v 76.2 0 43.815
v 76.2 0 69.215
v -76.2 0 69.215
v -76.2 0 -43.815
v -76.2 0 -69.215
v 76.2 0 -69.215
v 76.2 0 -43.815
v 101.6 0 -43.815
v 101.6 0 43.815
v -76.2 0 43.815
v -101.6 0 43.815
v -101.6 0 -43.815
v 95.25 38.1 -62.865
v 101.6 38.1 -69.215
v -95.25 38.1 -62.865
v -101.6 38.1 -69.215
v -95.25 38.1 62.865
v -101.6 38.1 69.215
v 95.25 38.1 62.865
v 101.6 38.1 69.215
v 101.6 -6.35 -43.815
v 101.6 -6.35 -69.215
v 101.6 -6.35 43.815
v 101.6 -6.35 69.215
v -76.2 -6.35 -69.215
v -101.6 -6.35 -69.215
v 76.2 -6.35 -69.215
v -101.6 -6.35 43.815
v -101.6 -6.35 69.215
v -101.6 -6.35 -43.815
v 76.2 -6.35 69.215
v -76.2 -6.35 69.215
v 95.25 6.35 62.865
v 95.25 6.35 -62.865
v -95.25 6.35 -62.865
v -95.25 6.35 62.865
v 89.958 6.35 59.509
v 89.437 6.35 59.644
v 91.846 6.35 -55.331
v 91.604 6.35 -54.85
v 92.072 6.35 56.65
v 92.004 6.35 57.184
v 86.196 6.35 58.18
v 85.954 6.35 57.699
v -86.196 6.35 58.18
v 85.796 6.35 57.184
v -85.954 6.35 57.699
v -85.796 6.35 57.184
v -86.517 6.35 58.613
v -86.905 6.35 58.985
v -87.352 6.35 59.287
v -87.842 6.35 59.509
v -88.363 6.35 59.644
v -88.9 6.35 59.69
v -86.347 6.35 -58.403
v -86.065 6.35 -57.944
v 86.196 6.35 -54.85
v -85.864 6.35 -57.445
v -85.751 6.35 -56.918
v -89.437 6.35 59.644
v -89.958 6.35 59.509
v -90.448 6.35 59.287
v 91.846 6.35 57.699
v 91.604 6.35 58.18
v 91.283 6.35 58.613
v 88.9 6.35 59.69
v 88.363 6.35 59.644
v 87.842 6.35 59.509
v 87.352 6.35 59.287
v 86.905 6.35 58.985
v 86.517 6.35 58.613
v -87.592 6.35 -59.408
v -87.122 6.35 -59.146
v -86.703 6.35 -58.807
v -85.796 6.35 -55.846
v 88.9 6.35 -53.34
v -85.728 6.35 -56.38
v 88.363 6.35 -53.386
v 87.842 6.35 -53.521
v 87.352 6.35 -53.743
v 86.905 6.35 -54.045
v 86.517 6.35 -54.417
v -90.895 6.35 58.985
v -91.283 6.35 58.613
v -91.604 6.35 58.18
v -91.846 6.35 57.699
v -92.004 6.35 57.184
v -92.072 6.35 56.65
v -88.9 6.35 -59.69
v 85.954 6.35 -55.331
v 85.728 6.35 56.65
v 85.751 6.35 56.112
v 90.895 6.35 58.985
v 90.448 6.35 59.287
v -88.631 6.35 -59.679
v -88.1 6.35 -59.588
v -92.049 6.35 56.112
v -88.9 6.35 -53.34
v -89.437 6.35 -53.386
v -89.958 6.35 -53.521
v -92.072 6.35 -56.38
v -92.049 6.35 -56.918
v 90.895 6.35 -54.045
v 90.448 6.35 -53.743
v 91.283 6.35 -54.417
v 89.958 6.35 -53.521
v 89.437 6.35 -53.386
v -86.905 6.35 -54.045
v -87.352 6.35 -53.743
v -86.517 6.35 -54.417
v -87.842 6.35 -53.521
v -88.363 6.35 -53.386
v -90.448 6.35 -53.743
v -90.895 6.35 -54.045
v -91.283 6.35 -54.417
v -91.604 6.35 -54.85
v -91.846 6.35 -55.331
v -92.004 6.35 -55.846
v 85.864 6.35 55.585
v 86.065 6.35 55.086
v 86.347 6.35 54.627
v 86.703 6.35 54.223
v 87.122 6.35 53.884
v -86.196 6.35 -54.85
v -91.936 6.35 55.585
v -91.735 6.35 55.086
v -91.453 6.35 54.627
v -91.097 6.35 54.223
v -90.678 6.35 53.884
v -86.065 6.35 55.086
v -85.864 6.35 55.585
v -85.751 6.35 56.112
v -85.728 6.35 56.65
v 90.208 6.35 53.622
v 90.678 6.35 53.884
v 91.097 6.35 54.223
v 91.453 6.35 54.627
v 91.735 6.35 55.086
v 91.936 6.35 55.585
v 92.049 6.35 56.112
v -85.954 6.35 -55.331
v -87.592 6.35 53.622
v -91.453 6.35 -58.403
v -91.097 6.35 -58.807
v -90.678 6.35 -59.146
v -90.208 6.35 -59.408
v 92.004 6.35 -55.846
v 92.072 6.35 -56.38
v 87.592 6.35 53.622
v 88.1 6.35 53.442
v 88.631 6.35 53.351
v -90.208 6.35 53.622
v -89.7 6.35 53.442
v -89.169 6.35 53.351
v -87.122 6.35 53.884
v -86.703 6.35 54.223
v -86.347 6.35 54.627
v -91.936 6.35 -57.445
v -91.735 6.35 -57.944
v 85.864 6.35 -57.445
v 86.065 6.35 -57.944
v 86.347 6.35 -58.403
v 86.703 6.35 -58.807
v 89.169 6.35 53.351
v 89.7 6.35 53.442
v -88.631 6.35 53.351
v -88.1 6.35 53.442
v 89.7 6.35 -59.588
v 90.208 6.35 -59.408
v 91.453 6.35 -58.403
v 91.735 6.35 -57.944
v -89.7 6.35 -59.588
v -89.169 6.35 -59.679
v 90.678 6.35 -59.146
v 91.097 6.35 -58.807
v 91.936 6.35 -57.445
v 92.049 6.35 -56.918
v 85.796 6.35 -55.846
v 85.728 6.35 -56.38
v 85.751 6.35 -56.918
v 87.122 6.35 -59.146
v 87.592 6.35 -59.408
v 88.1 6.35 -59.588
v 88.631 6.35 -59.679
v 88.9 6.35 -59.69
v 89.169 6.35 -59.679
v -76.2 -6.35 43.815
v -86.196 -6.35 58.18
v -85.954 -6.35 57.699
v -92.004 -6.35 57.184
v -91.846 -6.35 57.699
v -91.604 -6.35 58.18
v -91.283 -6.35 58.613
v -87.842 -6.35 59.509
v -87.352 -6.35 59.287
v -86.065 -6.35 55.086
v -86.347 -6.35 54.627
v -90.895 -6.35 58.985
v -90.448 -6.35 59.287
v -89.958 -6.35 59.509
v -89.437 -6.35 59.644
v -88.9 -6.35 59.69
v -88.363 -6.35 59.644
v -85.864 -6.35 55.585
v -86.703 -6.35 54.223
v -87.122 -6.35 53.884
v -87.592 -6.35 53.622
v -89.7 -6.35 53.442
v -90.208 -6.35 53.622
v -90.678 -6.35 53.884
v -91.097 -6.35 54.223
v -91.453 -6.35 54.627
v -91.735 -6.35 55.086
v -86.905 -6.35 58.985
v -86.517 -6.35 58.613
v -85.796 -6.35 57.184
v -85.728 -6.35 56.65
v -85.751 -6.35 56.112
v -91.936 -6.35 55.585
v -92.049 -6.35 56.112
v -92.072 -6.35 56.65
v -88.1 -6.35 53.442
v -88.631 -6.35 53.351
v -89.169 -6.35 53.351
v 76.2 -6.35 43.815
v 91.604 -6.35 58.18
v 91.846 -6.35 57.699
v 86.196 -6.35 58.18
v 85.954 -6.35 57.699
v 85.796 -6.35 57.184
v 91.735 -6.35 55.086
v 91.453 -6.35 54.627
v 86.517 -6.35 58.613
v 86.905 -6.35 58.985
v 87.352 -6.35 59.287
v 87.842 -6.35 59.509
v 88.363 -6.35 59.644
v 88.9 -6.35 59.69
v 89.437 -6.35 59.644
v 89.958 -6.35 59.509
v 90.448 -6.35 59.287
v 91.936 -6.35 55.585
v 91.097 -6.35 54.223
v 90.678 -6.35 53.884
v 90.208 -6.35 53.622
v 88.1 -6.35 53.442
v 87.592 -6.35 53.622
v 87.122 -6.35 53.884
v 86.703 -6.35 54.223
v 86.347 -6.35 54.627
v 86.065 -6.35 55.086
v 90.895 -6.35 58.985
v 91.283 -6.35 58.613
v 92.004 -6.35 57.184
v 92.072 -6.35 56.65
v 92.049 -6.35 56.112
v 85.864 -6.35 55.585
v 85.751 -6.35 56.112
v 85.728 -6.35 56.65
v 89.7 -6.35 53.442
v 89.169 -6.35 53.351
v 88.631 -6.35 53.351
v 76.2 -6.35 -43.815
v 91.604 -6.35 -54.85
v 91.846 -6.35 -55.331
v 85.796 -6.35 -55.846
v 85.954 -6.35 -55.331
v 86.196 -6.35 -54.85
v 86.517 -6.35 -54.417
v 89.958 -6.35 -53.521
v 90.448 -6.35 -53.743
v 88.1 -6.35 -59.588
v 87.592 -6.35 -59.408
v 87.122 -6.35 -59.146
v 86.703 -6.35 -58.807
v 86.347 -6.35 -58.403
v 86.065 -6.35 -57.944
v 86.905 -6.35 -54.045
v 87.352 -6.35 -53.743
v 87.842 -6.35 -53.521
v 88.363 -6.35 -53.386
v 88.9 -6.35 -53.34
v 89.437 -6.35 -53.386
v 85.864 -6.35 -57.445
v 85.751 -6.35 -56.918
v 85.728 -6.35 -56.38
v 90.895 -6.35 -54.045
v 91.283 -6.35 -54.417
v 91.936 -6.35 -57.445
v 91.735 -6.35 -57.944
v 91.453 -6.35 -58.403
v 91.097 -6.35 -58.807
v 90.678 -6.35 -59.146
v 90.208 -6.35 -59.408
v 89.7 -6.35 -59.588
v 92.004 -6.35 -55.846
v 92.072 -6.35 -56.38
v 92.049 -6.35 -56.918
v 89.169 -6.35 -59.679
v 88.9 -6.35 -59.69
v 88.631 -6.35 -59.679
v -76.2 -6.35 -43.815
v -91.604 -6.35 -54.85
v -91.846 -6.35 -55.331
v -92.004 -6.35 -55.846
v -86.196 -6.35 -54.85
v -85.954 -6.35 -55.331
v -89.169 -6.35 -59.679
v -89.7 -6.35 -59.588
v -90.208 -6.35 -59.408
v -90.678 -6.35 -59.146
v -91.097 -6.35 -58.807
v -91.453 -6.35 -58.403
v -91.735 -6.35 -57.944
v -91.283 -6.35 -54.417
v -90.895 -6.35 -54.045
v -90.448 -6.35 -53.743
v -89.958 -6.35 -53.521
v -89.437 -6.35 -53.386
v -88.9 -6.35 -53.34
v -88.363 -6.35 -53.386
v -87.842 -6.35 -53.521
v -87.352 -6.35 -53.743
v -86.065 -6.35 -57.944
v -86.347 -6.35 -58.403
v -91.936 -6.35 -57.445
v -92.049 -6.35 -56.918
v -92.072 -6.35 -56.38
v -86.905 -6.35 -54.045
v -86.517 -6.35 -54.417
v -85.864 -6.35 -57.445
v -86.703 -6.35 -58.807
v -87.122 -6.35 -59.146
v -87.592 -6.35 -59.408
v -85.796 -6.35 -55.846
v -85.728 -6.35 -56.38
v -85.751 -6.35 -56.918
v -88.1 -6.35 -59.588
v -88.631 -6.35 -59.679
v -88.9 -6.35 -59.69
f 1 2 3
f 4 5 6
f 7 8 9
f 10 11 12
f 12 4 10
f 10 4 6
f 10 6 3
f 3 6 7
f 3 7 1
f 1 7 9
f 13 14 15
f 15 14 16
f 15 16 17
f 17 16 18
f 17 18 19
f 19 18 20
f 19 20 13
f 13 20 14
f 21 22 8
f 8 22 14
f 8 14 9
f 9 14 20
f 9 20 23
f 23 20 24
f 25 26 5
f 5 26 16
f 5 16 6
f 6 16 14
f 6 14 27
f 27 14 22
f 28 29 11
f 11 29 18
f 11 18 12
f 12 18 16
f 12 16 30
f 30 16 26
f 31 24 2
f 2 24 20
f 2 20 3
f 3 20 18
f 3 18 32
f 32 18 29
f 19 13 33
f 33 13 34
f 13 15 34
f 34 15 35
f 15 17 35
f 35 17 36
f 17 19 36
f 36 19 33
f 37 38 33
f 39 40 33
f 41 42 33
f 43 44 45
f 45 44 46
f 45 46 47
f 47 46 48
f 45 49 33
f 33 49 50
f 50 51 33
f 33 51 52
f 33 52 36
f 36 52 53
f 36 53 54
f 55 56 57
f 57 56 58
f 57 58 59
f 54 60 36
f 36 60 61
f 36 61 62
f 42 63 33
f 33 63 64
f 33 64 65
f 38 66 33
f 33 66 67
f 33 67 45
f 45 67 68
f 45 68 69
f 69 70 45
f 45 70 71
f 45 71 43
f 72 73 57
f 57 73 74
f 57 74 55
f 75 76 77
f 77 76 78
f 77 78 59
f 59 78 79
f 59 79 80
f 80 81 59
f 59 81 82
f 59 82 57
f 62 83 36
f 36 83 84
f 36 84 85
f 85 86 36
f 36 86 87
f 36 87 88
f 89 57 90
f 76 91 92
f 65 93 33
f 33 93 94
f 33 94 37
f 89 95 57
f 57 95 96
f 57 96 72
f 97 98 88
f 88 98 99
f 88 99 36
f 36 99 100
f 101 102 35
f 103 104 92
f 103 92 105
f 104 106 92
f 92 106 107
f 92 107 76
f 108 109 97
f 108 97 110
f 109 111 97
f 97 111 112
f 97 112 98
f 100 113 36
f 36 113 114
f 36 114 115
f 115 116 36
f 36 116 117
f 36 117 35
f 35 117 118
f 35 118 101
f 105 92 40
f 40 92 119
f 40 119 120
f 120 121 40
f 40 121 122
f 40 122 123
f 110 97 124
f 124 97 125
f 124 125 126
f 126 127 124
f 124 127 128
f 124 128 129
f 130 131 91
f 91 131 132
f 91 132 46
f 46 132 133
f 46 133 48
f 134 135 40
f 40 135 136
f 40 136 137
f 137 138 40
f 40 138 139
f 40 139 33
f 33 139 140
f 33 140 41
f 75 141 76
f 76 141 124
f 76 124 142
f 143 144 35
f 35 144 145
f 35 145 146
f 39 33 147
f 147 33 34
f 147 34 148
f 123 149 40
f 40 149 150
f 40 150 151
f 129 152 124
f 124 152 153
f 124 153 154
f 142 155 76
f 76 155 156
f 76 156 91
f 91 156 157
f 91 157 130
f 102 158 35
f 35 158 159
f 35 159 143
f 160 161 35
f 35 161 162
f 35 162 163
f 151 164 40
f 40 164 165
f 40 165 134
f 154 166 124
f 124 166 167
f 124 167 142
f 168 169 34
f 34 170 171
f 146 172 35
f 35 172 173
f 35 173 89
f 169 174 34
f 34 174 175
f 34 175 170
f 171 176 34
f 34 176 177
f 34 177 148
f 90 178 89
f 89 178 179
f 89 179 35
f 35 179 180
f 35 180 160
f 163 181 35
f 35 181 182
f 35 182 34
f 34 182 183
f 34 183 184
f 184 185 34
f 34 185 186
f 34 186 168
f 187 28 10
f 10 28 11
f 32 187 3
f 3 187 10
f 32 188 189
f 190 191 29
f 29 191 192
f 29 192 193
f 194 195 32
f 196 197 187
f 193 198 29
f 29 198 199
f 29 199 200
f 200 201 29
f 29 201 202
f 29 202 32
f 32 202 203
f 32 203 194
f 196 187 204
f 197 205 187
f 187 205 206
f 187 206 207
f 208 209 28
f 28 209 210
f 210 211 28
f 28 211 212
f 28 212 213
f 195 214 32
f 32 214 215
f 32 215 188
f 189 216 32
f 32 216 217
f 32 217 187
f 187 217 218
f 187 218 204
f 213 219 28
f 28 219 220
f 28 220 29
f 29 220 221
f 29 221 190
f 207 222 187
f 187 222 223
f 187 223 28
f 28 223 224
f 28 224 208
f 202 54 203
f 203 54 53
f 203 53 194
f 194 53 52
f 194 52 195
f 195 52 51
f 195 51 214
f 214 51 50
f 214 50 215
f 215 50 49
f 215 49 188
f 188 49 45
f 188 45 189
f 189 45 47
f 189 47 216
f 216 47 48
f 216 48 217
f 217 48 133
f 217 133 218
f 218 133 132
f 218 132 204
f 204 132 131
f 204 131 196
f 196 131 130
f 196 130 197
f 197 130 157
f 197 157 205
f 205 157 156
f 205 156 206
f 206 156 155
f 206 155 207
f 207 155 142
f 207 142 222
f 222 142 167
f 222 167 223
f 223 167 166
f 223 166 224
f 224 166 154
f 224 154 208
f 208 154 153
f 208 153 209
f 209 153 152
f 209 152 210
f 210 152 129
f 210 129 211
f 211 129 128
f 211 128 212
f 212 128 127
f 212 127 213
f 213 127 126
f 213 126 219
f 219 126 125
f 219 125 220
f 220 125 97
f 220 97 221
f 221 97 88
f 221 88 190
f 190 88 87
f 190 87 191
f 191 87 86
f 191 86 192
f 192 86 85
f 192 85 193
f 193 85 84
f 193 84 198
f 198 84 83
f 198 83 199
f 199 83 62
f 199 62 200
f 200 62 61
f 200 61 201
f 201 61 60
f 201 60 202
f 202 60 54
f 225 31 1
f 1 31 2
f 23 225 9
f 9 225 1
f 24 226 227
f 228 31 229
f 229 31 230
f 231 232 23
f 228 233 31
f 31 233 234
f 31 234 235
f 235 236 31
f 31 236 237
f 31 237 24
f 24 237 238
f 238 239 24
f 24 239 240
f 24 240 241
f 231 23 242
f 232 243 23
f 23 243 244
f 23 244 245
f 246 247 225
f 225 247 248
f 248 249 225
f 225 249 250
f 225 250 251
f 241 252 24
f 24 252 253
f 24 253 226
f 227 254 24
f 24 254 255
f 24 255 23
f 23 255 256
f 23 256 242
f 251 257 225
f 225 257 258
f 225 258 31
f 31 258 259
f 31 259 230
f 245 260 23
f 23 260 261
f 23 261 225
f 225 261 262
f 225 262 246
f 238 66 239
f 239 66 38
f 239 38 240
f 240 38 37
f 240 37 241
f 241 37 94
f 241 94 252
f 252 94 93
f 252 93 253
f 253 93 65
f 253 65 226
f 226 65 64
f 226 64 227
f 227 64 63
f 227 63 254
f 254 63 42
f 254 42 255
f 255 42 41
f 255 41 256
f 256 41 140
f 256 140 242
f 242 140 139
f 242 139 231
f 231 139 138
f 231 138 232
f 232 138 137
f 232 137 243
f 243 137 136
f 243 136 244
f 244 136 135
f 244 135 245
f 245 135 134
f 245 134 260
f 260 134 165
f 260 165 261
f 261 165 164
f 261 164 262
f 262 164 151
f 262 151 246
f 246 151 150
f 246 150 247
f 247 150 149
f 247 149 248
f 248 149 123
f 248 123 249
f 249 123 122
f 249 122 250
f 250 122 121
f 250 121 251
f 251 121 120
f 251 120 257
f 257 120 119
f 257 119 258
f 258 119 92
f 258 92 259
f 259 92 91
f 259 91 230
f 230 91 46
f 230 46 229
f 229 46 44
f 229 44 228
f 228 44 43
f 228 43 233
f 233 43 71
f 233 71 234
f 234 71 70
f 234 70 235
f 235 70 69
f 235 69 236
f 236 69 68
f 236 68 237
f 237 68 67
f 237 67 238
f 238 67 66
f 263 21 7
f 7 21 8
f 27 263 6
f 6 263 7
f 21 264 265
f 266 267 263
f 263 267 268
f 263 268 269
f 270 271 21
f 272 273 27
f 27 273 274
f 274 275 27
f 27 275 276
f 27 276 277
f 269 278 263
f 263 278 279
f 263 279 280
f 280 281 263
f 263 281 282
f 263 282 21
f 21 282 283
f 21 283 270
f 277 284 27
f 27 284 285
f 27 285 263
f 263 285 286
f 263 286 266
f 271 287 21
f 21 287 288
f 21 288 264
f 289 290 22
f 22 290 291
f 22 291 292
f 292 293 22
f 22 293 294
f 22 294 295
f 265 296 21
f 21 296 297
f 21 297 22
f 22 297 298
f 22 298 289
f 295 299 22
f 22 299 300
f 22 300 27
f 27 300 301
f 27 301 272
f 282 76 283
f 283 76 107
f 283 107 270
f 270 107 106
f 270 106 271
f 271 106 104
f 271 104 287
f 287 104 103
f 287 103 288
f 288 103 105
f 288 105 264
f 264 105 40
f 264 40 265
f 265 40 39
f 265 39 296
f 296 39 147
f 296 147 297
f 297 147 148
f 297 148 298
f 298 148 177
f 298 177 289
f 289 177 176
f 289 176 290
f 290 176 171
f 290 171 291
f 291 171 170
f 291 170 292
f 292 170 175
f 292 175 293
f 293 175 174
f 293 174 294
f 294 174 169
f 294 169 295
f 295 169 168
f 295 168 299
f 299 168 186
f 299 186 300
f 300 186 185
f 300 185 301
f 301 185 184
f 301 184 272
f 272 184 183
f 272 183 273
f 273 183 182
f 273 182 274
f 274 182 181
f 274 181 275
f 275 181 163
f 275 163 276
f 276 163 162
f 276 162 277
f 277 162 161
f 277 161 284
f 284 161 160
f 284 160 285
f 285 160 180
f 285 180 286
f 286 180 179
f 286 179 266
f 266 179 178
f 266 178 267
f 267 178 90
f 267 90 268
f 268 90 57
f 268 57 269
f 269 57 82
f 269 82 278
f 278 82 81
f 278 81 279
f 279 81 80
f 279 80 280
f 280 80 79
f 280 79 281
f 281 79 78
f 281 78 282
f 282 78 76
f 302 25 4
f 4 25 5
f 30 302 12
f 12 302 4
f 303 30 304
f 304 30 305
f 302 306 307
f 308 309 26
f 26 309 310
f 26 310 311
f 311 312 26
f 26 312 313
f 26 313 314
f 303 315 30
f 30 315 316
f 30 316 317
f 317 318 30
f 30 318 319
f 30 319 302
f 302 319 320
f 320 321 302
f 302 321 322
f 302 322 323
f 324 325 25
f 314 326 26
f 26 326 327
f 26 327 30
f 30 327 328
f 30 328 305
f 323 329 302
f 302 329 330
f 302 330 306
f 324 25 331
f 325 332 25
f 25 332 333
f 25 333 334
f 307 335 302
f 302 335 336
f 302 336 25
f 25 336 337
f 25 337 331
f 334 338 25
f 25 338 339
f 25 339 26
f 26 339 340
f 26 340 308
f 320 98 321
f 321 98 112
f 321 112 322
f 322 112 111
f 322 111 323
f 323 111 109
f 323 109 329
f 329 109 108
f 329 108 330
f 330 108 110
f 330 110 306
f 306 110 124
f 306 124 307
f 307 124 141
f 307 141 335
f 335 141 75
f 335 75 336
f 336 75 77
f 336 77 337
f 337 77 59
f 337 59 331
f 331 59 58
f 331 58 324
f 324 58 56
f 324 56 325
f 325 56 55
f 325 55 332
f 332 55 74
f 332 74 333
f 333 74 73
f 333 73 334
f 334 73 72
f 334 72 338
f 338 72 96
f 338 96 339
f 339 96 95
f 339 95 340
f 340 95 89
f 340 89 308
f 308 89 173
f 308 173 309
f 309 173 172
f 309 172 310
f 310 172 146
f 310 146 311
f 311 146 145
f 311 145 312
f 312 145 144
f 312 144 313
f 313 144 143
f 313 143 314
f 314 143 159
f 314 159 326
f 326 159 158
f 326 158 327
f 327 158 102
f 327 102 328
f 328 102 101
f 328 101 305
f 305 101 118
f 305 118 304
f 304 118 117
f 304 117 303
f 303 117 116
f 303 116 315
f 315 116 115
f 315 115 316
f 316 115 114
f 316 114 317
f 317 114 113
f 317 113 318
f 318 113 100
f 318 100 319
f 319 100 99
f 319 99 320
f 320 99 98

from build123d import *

# Parameters (mm, degrees)
SKETCH1_W               = 203.2
SKETCH1_H               = 138.43
BOSS_EXTRUDE2_DEPTH     = 38.1
SHELL1_T                = -6.35
SKETCH2_W               = 25.4
SKETCH2_H               = 25.4
BOSS_EXTRUDE4_DEPTH     = 6.35
SKETCH3_R               = 3.175
CUT_EXTRUDE1_DEPTH      = 13.7
MIRROR4_COPY_1_SKETCH_W = 25.4
MIRROR4_COPY_1_SKETCH_H = 25.4
MIRROR4_COPY_1_DEPTH    = 6.35
MIRROR4_COPY_2_SKETCH_R = 3.175
MIRROR4_COPY_2_DEPTH    = 13.7


with BuildPart() as part:
    # Sketch1 → Boss-Extrude2 (new body)
    with BuildSketch(Plane(origin=(0, 0, 0), x_dir=(1, 0, 0), z_dir=(0, 1, 0))):
        Rectangle(SKETCH1_W, SKETCH1_H)
    extrude(amount=BOSS_EXTRUDE2_DEPTH)

    # Shell1
    shell1_openings = [part.faces().sort_by_distance(p)[0] for p in [
        (0, 38.1, 0),
    ]]
    offset(amount=SHELL1_T, openings=shell1_openings, kind=Kind.INTERSECTION)

    # Sketch2 → Boss-Extrude4 (add)
    with BuildSketch(Plane.XZ):
        with Locations((-88.9, 56.515)):
            Rectangle(SKETCH2_W, SKETCH2_H)
    boss_extrude4 = extrude(amount=BOSS_EXTRUDE4_DEPTH)

    # Sketch3 → Cut-Extrude1 (cut, through all)
    with BuildSketch(Plane(origin=(0, 6.35, 0), x_dir=(1, 0, 0), z_dir=(0, 1, 0))):
        with Locations((-88.9, -56.515)):
            Circle(SKETCH3_R)
    cut_extrude1 = extrude(amount=-CUT_EXTRUDE1_DEPTH, mode=Mode.SUBTRACT)

    # Mirror3: Boss-Extrude4, Cut-Extrude1 across plane
    add(boss_extrude4.mirror(Plane(origin=(0, 0, 0), x_dir=(0, 0, 1), z_dir=(1, 0, 0))))
    add(cut_extrude1.mirror(Plane(origin=(0, 0, 0), x_dir=(0, 0, 1), z_dir=(1, 0, 0))), mode=Mode.SUBTRACT)

    # Mirror4: Boss-Extrude4, Cut-Extrude1 across plane
    add(boss_extrude4.mirror(Plane.XY))
    add(cut_extrude1.mirror(Plane.XY), mode=Mode.SUBTRACT)

    # Mirror4 copy 1 sketch → Mirror4 copy 1 (add)
    with BuildSketch(Plane(origin=(0, 0, 0), x_dir=(-1, 0, 0), z_dir=(0, -1, 0))):
        with Locations((-88.9, 56.515)):
            Rectangle(MIRROR4_COPY_1_SKETCH_W, MIRROR4_COPY_1_SKETCH_H)
    extrude(amount=MIRROR4_COPY_1_DEPTH)

    # Mirror4 copy 2 sketch → Mirror4 copy 2 (cut, through all)
    with BuildSketch(Plane(origin=(0, 6.35, 0), x_dir=(-1, 0, 0), z_dir=(0, 1, 0))):
        with Locations((-88.9, -56.515)):
            Circle(MIRROR4_COPY_2_SKETCH_R)
    extrude(amount=-MIRROR4_COPY_2_DEPTH, mode=Mode.SUBTRACT)


solid = part.part
